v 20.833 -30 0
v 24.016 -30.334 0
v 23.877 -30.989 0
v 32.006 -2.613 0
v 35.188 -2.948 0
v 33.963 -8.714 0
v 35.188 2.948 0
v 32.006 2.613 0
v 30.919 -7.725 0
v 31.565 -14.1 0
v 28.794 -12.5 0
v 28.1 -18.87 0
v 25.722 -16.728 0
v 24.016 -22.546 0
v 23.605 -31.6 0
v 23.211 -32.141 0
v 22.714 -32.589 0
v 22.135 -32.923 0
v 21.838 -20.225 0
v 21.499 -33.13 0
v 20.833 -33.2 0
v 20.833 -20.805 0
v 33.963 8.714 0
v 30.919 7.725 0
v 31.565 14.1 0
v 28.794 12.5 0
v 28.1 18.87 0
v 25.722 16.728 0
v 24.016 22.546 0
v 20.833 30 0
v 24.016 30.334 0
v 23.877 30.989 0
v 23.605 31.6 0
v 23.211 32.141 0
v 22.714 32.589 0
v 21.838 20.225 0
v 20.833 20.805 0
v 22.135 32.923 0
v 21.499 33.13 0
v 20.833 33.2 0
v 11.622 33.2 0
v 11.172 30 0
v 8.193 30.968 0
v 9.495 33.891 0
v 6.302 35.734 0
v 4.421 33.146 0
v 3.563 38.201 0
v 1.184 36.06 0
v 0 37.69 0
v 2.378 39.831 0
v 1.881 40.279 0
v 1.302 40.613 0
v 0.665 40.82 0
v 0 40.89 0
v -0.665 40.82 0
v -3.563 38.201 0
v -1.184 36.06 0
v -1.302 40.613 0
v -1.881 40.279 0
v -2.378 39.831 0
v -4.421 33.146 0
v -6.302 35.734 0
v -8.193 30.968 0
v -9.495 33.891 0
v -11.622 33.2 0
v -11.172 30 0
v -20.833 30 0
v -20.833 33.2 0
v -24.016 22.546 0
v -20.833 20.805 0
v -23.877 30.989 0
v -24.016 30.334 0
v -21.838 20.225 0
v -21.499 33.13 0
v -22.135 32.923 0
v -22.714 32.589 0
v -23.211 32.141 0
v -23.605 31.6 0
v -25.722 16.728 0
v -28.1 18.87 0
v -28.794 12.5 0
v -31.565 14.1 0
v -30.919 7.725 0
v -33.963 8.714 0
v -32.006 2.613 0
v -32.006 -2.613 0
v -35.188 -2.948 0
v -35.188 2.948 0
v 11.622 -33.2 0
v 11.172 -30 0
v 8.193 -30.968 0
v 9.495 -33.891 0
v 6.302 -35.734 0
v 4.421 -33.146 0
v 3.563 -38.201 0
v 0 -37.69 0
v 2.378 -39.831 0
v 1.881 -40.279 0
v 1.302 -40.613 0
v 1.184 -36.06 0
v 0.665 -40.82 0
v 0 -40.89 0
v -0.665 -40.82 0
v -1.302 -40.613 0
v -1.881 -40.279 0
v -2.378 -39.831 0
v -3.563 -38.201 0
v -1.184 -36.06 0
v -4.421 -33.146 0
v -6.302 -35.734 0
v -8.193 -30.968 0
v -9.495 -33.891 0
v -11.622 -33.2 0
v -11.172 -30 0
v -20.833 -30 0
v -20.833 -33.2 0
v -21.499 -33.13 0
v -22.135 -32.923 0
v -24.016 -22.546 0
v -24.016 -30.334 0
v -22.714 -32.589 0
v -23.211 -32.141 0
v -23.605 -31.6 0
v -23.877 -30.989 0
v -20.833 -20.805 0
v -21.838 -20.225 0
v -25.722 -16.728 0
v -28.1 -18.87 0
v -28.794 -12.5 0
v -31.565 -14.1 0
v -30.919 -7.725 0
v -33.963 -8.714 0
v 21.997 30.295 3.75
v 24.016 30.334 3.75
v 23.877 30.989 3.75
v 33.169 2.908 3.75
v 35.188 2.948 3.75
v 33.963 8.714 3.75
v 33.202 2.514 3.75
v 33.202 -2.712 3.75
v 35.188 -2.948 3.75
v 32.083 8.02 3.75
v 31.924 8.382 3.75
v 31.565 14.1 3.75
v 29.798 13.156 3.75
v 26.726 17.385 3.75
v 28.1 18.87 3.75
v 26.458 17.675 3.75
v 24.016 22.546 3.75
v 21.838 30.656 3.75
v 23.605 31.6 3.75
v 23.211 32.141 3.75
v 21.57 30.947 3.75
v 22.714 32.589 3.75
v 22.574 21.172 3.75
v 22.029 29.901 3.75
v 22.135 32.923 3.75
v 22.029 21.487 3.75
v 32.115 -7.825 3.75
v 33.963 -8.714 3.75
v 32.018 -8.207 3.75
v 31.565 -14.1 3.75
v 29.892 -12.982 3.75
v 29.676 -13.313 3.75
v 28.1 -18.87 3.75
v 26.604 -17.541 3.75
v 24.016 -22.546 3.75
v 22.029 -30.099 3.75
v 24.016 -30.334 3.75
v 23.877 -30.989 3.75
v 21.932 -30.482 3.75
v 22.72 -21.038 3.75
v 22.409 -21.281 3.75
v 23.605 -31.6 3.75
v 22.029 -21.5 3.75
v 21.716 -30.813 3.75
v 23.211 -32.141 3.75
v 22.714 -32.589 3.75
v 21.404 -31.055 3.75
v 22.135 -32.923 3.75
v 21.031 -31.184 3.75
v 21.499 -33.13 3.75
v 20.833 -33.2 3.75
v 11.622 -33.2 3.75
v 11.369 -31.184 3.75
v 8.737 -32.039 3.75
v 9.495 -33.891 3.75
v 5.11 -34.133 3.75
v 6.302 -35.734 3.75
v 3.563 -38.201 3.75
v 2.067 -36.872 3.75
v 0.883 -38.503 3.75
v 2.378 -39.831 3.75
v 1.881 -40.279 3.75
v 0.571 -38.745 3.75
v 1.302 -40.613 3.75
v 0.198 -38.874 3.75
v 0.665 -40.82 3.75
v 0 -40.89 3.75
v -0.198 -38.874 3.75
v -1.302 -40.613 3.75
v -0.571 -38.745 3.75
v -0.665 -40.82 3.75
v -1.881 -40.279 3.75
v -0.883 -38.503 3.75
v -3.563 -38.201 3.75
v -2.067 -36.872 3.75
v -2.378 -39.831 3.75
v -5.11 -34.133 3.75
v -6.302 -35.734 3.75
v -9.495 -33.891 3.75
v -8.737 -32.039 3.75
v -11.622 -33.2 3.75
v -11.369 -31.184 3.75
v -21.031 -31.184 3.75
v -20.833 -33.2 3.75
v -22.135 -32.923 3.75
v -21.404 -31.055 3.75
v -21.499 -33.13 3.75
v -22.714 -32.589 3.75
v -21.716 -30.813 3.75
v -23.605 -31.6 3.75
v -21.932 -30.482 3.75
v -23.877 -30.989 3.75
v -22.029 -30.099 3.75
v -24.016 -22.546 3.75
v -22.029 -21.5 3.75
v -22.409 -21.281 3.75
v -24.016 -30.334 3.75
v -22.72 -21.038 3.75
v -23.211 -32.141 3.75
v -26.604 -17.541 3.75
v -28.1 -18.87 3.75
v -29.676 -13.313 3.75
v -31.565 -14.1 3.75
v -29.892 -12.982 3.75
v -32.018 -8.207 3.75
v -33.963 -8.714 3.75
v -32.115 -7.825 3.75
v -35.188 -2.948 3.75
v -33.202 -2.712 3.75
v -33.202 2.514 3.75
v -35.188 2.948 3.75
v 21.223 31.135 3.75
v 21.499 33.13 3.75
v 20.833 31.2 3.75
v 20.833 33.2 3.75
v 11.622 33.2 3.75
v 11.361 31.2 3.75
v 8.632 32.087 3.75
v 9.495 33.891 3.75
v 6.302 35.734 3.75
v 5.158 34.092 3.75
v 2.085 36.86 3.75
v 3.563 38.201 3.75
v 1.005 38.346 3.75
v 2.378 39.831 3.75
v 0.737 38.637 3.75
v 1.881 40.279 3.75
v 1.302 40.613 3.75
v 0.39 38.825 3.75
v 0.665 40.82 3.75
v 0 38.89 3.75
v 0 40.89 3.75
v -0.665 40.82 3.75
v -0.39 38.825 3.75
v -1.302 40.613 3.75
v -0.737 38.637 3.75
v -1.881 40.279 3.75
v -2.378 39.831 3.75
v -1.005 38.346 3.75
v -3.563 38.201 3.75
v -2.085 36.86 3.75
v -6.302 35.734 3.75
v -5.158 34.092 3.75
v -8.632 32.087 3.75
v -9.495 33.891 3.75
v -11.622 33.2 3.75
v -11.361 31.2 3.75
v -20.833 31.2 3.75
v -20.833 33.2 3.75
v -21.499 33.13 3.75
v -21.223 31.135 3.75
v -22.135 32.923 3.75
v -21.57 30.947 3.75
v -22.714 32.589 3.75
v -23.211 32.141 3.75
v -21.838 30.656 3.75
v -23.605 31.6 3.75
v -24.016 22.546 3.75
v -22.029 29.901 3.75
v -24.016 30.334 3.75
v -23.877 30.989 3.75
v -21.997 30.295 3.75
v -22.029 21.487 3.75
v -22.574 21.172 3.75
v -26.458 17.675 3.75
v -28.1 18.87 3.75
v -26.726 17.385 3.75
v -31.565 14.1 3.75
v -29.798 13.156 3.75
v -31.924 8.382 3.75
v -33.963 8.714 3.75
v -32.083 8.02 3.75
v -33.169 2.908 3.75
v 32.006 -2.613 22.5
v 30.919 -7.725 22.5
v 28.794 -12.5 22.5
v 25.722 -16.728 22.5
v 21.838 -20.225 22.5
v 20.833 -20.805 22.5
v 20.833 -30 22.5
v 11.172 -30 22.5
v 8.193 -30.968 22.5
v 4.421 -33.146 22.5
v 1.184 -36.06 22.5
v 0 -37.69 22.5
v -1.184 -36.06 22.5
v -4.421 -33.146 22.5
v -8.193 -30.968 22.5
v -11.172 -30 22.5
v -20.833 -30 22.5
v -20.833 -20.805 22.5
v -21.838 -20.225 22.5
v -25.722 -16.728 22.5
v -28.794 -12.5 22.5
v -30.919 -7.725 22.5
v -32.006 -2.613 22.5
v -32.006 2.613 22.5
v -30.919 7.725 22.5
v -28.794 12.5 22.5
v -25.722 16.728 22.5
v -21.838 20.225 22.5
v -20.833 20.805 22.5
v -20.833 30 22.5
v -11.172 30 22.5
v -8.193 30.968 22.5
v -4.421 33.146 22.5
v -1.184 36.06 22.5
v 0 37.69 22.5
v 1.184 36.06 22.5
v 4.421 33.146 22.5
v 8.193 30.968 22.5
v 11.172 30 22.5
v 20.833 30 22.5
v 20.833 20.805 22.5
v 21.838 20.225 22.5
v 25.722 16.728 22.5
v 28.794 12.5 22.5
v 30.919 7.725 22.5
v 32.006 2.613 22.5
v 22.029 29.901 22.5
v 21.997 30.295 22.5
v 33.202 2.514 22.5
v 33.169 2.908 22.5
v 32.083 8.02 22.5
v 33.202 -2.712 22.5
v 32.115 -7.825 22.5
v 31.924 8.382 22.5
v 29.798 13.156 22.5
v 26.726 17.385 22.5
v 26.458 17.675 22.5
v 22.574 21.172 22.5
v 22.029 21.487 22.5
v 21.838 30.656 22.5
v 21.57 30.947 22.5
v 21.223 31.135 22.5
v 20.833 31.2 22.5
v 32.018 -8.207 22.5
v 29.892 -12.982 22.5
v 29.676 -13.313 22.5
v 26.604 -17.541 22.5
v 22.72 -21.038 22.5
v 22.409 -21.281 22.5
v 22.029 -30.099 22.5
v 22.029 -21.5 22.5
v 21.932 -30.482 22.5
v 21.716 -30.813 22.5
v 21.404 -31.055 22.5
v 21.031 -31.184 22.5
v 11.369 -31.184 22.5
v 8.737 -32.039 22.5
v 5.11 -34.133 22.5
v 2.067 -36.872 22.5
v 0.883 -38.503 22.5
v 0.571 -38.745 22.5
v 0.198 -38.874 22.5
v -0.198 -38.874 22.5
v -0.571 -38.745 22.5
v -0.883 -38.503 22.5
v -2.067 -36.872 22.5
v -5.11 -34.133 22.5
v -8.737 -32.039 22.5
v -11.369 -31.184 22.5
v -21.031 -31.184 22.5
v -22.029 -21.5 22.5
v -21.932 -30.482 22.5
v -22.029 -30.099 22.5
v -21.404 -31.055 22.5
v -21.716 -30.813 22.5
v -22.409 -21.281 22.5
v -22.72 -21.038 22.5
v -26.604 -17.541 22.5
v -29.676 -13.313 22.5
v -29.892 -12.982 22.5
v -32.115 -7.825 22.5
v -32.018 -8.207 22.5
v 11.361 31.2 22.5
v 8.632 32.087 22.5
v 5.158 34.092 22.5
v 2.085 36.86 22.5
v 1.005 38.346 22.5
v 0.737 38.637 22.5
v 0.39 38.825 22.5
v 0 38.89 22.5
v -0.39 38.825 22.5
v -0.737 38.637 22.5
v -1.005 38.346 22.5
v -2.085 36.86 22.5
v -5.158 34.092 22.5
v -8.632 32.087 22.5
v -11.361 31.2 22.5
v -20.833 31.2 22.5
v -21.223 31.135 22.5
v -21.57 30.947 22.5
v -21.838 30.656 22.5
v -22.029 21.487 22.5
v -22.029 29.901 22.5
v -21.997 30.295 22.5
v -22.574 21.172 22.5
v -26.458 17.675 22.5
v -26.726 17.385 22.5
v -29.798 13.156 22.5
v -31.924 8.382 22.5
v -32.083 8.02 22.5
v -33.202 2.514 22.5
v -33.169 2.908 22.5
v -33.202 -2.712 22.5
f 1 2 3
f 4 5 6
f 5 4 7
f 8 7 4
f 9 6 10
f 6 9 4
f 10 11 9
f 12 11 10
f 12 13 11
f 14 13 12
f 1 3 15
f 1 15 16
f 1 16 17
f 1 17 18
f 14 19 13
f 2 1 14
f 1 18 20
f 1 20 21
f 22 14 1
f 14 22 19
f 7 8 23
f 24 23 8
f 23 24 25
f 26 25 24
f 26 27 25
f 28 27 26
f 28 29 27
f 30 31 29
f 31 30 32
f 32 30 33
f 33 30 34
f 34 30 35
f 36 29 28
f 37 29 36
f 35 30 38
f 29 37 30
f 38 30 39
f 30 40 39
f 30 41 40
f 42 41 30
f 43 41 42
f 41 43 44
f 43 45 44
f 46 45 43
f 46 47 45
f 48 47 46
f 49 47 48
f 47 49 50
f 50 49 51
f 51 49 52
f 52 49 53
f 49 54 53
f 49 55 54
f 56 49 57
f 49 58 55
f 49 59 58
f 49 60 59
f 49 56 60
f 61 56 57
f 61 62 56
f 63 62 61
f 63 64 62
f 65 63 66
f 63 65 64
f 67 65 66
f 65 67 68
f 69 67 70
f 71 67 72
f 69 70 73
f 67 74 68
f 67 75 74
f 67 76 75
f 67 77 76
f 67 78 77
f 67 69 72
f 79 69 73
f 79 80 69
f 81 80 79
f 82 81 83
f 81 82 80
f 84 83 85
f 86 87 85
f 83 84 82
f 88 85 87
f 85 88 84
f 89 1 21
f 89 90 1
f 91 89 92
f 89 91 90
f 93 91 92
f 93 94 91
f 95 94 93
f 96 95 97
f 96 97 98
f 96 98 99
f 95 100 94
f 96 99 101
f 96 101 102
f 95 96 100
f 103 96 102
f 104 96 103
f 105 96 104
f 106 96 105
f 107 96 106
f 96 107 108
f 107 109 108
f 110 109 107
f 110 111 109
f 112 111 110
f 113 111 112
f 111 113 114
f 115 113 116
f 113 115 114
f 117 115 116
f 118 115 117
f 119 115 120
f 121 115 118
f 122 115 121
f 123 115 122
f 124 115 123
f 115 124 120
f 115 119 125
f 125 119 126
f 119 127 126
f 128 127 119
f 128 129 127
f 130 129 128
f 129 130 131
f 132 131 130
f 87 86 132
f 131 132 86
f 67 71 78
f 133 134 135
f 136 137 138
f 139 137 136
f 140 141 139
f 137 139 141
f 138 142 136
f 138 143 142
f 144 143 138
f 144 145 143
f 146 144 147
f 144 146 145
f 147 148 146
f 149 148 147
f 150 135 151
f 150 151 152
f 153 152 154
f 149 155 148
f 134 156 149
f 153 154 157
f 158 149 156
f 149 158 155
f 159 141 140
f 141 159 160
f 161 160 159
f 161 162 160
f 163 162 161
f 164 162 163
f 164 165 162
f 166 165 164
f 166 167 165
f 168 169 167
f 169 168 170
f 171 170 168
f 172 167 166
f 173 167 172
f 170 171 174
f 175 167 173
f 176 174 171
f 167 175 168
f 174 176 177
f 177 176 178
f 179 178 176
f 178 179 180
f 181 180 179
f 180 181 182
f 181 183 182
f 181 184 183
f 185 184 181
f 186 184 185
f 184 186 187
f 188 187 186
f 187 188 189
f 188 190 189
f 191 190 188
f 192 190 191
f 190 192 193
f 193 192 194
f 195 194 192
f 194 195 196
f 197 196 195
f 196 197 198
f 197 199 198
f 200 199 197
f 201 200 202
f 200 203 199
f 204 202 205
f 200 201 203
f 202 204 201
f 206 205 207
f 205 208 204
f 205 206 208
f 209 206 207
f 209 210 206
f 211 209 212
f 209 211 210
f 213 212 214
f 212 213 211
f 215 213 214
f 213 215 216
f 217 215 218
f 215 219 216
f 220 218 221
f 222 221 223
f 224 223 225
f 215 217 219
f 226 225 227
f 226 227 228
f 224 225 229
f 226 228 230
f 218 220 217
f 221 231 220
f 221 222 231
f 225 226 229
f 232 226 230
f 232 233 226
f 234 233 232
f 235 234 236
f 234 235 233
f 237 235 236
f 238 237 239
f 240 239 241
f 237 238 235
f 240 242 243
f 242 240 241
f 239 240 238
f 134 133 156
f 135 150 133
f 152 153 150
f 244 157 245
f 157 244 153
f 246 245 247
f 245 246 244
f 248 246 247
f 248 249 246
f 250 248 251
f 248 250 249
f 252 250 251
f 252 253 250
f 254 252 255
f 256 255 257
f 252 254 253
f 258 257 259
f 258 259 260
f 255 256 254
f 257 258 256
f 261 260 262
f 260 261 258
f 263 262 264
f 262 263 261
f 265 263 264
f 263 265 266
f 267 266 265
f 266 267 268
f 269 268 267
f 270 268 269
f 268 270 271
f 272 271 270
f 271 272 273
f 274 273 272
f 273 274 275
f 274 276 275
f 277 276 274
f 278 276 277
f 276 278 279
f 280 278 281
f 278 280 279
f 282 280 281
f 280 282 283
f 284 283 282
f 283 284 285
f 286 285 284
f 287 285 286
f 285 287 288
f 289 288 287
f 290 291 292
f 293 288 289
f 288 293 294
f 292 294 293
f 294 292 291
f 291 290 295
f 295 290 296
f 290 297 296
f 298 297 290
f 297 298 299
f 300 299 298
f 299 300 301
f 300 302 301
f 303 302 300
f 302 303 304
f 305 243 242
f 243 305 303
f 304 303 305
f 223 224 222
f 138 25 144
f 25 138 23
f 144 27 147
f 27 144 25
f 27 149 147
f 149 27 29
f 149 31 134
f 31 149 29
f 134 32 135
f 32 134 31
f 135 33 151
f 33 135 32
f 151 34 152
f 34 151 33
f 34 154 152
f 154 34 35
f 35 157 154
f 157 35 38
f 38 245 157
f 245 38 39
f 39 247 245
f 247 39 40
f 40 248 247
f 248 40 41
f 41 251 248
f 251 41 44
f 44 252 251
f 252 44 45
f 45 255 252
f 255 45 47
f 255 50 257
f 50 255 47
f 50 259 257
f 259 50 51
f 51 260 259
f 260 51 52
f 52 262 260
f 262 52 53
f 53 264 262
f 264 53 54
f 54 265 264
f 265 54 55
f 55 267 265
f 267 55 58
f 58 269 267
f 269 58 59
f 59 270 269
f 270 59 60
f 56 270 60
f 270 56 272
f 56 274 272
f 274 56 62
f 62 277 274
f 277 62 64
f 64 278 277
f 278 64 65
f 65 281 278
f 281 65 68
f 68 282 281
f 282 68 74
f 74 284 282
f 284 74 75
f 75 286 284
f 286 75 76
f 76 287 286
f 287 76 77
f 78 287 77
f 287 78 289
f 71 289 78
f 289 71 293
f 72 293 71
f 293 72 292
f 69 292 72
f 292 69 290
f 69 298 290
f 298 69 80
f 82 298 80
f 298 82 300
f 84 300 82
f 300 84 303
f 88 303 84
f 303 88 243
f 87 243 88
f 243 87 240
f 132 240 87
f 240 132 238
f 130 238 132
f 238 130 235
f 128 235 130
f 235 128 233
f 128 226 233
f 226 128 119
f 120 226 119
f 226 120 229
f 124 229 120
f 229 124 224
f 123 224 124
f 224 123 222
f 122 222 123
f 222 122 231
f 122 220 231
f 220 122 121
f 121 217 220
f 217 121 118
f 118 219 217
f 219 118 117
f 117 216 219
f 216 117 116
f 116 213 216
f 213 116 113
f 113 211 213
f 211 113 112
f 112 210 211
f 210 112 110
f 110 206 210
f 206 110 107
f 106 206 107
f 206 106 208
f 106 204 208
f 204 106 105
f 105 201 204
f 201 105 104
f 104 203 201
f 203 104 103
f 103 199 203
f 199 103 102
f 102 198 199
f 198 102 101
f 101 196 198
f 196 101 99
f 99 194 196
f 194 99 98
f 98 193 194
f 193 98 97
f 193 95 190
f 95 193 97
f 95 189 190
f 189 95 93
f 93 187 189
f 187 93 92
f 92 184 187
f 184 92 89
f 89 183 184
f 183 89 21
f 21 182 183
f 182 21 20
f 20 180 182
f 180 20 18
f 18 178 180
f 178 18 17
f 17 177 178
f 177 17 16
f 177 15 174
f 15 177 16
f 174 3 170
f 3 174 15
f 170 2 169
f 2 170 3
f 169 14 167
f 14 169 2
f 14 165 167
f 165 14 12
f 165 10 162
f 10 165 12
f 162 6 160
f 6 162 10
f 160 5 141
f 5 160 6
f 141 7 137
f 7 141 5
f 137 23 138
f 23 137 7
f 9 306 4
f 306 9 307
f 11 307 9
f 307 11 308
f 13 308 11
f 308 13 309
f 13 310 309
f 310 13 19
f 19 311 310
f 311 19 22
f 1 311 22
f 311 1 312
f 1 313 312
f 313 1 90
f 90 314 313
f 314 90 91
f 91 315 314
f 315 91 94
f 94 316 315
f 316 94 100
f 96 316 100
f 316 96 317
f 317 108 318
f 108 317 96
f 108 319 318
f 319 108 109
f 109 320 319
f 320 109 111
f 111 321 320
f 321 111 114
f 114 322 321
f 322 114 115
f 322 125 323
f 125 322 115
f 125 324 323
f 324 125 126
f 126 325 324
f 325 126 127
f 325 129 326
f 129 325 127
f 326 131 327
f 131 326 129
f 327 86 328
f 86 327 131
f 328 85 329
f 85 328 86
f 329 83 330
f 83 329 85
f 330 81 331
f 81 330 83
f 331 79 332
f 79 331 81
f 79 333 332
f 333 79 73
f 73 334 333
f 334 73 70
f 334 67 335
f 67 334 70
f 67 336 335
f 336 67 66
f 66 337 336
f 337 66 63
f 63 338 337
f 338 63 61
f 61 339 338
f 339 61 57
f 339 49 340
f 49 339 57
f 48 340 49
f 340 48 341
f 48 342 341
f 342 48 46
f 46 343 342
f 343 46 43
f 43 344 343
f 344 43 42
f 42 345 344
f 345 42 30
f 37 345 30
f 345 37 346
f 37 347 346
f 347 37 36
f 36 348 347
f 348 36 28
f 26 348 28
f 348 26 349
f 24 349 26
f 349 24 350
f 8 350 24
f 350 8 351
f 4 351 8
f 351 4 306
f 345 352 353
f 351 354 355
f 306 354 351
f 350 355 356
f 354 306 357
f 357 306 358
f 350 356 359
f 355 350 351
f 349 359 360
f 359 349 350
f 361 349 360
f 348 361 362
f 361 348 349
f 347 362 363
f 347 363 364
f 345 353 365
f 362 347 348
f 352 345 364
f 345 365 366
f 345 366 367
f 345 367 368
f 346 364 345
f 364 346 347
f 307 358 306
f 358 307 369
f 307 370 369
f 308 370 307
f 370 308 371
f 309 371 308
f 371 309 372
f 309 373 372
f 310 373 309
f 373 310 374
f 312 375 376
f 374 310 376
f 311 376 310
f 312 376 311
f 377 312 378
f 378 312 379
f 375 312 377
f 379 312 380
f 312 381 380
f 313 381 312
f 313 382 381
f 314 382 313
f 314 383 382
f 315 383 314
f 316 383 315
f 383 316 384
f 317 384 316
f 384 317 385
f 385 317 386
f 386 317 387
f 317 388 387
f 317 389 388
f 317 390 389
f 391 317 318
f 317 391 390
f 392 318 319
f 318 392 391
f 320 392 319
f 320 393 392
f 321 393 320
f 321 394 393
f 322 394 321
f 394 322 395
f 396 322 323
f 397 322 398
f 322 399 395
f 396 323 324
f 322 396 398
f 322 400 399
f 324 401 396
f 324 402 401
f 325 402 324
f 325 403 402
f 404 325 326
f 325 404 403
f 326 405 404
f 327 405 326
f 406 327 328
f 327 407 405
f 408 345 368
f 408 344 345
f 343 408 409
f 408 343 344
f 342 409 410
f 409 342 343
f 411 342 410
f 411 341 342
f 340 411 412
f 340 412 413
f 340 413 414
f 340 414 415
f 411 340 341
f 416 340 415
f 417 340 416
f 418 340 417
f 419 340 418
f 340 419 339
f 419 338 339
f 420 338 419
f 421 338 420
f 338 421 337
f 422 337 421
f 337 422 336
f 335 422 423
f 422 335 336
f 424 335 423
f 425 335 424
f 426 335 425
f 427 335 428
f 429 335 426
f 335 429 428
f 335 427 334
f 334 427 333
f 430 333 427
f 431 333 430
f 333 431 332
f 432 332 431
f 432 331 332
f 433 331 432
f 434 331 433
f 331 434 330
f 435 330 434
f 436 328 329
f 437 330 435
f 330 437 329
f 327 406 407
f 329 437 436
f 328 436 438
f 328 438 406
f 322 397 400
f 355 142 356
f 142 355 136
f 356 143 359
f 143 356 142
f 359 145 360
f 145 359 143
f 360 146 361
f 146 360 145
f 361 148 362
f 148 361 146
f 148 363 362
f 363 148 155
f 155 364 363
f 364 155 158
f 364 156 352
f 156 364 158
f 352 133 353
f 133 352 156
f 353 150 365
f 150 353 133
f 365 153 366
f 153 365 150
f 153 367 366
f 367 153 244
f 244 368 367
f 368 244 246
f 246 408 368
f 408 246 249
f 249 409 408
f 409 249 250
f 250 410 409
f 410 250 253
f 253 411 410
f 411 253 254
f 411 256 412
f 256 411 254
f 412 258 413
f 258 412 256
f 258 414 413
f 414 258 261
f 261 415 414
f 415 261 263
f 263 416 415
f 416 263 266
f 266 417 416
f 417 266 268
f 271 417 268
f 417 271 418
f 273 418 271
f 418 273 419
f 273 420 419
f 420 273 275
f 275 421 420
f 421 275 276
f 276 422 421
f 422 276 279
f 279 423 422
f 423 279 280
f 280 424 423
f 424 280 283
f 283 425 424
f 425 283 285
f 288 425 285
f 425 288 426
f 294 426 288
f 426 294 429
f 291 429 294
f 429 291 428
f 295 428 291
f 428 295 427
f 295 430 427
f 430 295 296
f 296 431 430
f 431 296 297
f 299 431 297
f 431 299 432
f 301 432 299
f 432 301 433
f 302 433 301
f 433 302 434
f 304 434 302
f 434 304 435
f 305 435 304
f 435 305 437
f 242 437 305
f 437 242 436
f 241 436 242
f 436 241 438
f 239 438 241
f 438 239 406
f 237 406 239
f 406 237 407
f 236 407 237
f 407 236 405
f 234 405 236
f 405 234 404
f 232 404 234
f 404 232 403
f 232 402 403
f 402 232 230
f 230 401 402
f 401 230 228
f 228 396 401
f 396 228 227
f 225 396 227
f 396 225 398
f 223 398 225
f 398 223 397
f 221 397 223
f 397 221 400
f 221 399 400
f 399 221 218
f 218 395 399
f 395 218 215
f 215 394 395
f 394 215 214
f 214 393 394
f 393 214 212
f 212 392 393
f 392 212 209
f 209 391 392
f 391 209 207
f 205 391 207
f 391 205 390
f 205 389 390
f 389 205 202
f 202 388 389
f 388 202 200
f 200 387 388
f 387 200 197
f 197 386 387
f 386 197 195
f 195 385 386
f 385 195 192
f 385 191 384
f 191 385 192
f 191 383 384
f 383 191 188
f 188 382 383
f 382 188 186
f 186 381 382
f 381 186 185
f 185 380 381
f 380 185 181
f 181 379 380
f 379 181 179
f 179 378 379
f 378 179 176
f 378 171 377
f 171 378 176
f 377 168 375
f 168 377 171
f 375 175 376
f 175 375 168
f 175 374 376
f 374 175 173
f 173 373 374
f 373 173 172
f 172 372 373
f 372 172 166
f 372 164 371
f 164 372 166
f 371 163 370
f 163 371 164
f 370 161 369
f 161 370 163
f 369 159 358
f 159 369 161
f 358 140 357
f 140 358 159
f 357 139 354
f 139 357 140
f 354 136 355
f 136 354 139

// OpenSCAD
// file: Common.scad
module offset_shell(thickness = 0.1) {
  render() {
      difference() {
          minkowski() {
            children();
            circle(2* thickness, center=true);
          }
        children();
      }
   }
}

module cookie_cutter(handle_thickness=8, cutter_tickness=3, total_height=15) {
    union() {
        linear_extrude(height = total_height*(0.15), slices = 60) {
            scale([.2,.2,1]) {
              offset_shell(handle_thickness) {
                children();

              }
            }
        };
        linear_extrude(height = total_height*(0.9), slices = 60)
            translate([0,0,2])
            scale([.2,.2,1]) {
              offset_shell(cutter_tickness) {
                children();
            }
        };
    }
}

module rod_with_clipped_circle(square_d, circle_d, circle_placement) {
    difference() {
        square(square_d, center=true);
        translate(circle_placement) circle(circle_d, center=true);
    }
}

//module cookie_press(handle_thickness=2.5, cutter_tickness=1, total_height=10) {
//    union() {
//        cookie_cutter(handle_thickness, cutter_tickness, total_height);
//        translate([0,0,10]) children();
//    }
//}
//
//
// file: ../ComplexShapes.scad
include <BasicShapes.scad>

module HalfCylinder(r, h, e=1, center=false) {
    translate([0,0, center ? -h/2 : 0])difference(){
        cylinder(h,r,r);
        translate([0,-r,-e])cube([2*r,2*r,h+2*e]);
    }
}

module HalfCircle(r) {
    difference(){
        circle(r);
        translate([-r,-2*r,0]) square(2*r);
    }
}

// http://benjamin-engel.blogspot.com/2015/07/openscad-tips-and-tricks.html

module equilateral_triangle(h) {
    rotate([0,0,-30]) circle(r=h, $fn=3);
}

module Crescent(r, fatten_scale=1, curve_angle=0, rotate=0) {
    r_prime = r / fatten_scale;
    rotate([0,0,rotate]) difference() {
        circle(r_prime*1.1);
        translate([r_prime/4, curve_angle*r_prime/4, 0]) circle(r_prime*fatten_scale);
    }
}


module round_edges(r) {
    minkowski() {
        children();
        circle(r);
    };
}

module CrescentV2(outer_r, inner_r, r_shift, edge_rounding=2) {
    // Different way to construct ... rounded edges ...
   round_edges(edge_rounding) {
        difference() {
            circle(outer_r);
            translate(r_shift) circle(inner_r);
        };
    };
}


//module Arch(x,y,r) {
//    // http://kitwallace.co.uk/Blog/item/2013-01-28T17:59:00Z
//    union() {
//        intersection() {
//           translate([x,y,0]) circle(r);
//           translate([-x,y,0]) circle(r);
//        }
//        translate([0,y/2,0]) square(size=[2 * (r-x), y], center=true);
//    }
//}

module Arch(width, arc_height, strech_height=0) {
    // http://kitwallace.co.uk/Blog/item/2013-01-28T17:59:00Z
    r = arc_height;
    x = (width / 2) - r;
    y = arc_height + strech_height;
    union() {
        intersection() {
           translate([x,y,0]) circle(r);
           translate([-x,y,0]) circle(r);
        }
        translate([0,y/2,0]) square(size=[width, y], center=true);
    }
}
// file: ../BasicShapes.scad
module Star(points, outer, inner_defaulted=0) {
    inner = inner_defaulted == 0 ? 2 * outer  : inner_defaulted;
	// polar to cartesian: radius/angle to x/y
	function x(r, a) = r * cos(a);
	function y(r, a) = r * sin(a);
	
	// angular width of each pie slice of the star
	increment = 360/points;
	
	union() {
		for (p = [0 : points-1]) {
			
			// outer is outer point p
			// inner is inner point following p
			// next is next outer point following p

			assign(	
                x_outer = x(outer, increment * p),
                y_outer = y(outer, increment * p),
                x_inner = x(inner, (increment * p) + (increment/2)),
                y_inner = y(inner, (increment * p) + (increment/2)),
                x_next  = x(outer, increment * (p+1)),
                y_next  = y(outer, increment * (p+1))
            ) {
				polygon(
                    points = [
                        [x_outer, y_outer], 
                        [x_inner, y_inner],
                        [x_next, y_next], 
                        [0, 0]
                    ], 
                    paths  = [[0, 1, 2, 3]]
                );
			}
		}
	}
}

//https://github.com/openscad/MCAD/blob/master/shapes.scad
module Hexagon(size) {
  Star(3, size, size);
}

module Octagon(size) {
  Star(4, size, size);
}

module Decagon(size) {
  Star(5, size, size);
}

module Decagon(size) {
  Star(5, size, size);
}

module Dodecagon(size) {
  Star(6, size, size);
}
// main file
include <../BasicShapes.scad>
include <../ComplexShapes.scad>
include <Common.scad>

pi = 21/7;

module TopOfLantern2(size=100) {
   difference() {
       translate([size,0]) square([size, size/1.2], center=true);
       translate([size,size/3]) circle(1.25*size/pi);
       translate([size,-size/3]) circle(1.25*size/pi);
       translate([1.5*size,0]) square([size, size/1.2], center=true);
    };
}

module Lantern2(size=100) {
     union() {
        square([size*1.2, size/1.2], center=true);
        translate([0,size/7]) circle(size/2);
        translate([0,-size/7]) circle(size/2);
        TopOfLantern2(size);
        rotate([0, 0, 180])TopOfLantern2(size);
    }
}

rotate([0,0,90]) cookie_cutter(total_height=25) {
    Lantern2(250);
}
